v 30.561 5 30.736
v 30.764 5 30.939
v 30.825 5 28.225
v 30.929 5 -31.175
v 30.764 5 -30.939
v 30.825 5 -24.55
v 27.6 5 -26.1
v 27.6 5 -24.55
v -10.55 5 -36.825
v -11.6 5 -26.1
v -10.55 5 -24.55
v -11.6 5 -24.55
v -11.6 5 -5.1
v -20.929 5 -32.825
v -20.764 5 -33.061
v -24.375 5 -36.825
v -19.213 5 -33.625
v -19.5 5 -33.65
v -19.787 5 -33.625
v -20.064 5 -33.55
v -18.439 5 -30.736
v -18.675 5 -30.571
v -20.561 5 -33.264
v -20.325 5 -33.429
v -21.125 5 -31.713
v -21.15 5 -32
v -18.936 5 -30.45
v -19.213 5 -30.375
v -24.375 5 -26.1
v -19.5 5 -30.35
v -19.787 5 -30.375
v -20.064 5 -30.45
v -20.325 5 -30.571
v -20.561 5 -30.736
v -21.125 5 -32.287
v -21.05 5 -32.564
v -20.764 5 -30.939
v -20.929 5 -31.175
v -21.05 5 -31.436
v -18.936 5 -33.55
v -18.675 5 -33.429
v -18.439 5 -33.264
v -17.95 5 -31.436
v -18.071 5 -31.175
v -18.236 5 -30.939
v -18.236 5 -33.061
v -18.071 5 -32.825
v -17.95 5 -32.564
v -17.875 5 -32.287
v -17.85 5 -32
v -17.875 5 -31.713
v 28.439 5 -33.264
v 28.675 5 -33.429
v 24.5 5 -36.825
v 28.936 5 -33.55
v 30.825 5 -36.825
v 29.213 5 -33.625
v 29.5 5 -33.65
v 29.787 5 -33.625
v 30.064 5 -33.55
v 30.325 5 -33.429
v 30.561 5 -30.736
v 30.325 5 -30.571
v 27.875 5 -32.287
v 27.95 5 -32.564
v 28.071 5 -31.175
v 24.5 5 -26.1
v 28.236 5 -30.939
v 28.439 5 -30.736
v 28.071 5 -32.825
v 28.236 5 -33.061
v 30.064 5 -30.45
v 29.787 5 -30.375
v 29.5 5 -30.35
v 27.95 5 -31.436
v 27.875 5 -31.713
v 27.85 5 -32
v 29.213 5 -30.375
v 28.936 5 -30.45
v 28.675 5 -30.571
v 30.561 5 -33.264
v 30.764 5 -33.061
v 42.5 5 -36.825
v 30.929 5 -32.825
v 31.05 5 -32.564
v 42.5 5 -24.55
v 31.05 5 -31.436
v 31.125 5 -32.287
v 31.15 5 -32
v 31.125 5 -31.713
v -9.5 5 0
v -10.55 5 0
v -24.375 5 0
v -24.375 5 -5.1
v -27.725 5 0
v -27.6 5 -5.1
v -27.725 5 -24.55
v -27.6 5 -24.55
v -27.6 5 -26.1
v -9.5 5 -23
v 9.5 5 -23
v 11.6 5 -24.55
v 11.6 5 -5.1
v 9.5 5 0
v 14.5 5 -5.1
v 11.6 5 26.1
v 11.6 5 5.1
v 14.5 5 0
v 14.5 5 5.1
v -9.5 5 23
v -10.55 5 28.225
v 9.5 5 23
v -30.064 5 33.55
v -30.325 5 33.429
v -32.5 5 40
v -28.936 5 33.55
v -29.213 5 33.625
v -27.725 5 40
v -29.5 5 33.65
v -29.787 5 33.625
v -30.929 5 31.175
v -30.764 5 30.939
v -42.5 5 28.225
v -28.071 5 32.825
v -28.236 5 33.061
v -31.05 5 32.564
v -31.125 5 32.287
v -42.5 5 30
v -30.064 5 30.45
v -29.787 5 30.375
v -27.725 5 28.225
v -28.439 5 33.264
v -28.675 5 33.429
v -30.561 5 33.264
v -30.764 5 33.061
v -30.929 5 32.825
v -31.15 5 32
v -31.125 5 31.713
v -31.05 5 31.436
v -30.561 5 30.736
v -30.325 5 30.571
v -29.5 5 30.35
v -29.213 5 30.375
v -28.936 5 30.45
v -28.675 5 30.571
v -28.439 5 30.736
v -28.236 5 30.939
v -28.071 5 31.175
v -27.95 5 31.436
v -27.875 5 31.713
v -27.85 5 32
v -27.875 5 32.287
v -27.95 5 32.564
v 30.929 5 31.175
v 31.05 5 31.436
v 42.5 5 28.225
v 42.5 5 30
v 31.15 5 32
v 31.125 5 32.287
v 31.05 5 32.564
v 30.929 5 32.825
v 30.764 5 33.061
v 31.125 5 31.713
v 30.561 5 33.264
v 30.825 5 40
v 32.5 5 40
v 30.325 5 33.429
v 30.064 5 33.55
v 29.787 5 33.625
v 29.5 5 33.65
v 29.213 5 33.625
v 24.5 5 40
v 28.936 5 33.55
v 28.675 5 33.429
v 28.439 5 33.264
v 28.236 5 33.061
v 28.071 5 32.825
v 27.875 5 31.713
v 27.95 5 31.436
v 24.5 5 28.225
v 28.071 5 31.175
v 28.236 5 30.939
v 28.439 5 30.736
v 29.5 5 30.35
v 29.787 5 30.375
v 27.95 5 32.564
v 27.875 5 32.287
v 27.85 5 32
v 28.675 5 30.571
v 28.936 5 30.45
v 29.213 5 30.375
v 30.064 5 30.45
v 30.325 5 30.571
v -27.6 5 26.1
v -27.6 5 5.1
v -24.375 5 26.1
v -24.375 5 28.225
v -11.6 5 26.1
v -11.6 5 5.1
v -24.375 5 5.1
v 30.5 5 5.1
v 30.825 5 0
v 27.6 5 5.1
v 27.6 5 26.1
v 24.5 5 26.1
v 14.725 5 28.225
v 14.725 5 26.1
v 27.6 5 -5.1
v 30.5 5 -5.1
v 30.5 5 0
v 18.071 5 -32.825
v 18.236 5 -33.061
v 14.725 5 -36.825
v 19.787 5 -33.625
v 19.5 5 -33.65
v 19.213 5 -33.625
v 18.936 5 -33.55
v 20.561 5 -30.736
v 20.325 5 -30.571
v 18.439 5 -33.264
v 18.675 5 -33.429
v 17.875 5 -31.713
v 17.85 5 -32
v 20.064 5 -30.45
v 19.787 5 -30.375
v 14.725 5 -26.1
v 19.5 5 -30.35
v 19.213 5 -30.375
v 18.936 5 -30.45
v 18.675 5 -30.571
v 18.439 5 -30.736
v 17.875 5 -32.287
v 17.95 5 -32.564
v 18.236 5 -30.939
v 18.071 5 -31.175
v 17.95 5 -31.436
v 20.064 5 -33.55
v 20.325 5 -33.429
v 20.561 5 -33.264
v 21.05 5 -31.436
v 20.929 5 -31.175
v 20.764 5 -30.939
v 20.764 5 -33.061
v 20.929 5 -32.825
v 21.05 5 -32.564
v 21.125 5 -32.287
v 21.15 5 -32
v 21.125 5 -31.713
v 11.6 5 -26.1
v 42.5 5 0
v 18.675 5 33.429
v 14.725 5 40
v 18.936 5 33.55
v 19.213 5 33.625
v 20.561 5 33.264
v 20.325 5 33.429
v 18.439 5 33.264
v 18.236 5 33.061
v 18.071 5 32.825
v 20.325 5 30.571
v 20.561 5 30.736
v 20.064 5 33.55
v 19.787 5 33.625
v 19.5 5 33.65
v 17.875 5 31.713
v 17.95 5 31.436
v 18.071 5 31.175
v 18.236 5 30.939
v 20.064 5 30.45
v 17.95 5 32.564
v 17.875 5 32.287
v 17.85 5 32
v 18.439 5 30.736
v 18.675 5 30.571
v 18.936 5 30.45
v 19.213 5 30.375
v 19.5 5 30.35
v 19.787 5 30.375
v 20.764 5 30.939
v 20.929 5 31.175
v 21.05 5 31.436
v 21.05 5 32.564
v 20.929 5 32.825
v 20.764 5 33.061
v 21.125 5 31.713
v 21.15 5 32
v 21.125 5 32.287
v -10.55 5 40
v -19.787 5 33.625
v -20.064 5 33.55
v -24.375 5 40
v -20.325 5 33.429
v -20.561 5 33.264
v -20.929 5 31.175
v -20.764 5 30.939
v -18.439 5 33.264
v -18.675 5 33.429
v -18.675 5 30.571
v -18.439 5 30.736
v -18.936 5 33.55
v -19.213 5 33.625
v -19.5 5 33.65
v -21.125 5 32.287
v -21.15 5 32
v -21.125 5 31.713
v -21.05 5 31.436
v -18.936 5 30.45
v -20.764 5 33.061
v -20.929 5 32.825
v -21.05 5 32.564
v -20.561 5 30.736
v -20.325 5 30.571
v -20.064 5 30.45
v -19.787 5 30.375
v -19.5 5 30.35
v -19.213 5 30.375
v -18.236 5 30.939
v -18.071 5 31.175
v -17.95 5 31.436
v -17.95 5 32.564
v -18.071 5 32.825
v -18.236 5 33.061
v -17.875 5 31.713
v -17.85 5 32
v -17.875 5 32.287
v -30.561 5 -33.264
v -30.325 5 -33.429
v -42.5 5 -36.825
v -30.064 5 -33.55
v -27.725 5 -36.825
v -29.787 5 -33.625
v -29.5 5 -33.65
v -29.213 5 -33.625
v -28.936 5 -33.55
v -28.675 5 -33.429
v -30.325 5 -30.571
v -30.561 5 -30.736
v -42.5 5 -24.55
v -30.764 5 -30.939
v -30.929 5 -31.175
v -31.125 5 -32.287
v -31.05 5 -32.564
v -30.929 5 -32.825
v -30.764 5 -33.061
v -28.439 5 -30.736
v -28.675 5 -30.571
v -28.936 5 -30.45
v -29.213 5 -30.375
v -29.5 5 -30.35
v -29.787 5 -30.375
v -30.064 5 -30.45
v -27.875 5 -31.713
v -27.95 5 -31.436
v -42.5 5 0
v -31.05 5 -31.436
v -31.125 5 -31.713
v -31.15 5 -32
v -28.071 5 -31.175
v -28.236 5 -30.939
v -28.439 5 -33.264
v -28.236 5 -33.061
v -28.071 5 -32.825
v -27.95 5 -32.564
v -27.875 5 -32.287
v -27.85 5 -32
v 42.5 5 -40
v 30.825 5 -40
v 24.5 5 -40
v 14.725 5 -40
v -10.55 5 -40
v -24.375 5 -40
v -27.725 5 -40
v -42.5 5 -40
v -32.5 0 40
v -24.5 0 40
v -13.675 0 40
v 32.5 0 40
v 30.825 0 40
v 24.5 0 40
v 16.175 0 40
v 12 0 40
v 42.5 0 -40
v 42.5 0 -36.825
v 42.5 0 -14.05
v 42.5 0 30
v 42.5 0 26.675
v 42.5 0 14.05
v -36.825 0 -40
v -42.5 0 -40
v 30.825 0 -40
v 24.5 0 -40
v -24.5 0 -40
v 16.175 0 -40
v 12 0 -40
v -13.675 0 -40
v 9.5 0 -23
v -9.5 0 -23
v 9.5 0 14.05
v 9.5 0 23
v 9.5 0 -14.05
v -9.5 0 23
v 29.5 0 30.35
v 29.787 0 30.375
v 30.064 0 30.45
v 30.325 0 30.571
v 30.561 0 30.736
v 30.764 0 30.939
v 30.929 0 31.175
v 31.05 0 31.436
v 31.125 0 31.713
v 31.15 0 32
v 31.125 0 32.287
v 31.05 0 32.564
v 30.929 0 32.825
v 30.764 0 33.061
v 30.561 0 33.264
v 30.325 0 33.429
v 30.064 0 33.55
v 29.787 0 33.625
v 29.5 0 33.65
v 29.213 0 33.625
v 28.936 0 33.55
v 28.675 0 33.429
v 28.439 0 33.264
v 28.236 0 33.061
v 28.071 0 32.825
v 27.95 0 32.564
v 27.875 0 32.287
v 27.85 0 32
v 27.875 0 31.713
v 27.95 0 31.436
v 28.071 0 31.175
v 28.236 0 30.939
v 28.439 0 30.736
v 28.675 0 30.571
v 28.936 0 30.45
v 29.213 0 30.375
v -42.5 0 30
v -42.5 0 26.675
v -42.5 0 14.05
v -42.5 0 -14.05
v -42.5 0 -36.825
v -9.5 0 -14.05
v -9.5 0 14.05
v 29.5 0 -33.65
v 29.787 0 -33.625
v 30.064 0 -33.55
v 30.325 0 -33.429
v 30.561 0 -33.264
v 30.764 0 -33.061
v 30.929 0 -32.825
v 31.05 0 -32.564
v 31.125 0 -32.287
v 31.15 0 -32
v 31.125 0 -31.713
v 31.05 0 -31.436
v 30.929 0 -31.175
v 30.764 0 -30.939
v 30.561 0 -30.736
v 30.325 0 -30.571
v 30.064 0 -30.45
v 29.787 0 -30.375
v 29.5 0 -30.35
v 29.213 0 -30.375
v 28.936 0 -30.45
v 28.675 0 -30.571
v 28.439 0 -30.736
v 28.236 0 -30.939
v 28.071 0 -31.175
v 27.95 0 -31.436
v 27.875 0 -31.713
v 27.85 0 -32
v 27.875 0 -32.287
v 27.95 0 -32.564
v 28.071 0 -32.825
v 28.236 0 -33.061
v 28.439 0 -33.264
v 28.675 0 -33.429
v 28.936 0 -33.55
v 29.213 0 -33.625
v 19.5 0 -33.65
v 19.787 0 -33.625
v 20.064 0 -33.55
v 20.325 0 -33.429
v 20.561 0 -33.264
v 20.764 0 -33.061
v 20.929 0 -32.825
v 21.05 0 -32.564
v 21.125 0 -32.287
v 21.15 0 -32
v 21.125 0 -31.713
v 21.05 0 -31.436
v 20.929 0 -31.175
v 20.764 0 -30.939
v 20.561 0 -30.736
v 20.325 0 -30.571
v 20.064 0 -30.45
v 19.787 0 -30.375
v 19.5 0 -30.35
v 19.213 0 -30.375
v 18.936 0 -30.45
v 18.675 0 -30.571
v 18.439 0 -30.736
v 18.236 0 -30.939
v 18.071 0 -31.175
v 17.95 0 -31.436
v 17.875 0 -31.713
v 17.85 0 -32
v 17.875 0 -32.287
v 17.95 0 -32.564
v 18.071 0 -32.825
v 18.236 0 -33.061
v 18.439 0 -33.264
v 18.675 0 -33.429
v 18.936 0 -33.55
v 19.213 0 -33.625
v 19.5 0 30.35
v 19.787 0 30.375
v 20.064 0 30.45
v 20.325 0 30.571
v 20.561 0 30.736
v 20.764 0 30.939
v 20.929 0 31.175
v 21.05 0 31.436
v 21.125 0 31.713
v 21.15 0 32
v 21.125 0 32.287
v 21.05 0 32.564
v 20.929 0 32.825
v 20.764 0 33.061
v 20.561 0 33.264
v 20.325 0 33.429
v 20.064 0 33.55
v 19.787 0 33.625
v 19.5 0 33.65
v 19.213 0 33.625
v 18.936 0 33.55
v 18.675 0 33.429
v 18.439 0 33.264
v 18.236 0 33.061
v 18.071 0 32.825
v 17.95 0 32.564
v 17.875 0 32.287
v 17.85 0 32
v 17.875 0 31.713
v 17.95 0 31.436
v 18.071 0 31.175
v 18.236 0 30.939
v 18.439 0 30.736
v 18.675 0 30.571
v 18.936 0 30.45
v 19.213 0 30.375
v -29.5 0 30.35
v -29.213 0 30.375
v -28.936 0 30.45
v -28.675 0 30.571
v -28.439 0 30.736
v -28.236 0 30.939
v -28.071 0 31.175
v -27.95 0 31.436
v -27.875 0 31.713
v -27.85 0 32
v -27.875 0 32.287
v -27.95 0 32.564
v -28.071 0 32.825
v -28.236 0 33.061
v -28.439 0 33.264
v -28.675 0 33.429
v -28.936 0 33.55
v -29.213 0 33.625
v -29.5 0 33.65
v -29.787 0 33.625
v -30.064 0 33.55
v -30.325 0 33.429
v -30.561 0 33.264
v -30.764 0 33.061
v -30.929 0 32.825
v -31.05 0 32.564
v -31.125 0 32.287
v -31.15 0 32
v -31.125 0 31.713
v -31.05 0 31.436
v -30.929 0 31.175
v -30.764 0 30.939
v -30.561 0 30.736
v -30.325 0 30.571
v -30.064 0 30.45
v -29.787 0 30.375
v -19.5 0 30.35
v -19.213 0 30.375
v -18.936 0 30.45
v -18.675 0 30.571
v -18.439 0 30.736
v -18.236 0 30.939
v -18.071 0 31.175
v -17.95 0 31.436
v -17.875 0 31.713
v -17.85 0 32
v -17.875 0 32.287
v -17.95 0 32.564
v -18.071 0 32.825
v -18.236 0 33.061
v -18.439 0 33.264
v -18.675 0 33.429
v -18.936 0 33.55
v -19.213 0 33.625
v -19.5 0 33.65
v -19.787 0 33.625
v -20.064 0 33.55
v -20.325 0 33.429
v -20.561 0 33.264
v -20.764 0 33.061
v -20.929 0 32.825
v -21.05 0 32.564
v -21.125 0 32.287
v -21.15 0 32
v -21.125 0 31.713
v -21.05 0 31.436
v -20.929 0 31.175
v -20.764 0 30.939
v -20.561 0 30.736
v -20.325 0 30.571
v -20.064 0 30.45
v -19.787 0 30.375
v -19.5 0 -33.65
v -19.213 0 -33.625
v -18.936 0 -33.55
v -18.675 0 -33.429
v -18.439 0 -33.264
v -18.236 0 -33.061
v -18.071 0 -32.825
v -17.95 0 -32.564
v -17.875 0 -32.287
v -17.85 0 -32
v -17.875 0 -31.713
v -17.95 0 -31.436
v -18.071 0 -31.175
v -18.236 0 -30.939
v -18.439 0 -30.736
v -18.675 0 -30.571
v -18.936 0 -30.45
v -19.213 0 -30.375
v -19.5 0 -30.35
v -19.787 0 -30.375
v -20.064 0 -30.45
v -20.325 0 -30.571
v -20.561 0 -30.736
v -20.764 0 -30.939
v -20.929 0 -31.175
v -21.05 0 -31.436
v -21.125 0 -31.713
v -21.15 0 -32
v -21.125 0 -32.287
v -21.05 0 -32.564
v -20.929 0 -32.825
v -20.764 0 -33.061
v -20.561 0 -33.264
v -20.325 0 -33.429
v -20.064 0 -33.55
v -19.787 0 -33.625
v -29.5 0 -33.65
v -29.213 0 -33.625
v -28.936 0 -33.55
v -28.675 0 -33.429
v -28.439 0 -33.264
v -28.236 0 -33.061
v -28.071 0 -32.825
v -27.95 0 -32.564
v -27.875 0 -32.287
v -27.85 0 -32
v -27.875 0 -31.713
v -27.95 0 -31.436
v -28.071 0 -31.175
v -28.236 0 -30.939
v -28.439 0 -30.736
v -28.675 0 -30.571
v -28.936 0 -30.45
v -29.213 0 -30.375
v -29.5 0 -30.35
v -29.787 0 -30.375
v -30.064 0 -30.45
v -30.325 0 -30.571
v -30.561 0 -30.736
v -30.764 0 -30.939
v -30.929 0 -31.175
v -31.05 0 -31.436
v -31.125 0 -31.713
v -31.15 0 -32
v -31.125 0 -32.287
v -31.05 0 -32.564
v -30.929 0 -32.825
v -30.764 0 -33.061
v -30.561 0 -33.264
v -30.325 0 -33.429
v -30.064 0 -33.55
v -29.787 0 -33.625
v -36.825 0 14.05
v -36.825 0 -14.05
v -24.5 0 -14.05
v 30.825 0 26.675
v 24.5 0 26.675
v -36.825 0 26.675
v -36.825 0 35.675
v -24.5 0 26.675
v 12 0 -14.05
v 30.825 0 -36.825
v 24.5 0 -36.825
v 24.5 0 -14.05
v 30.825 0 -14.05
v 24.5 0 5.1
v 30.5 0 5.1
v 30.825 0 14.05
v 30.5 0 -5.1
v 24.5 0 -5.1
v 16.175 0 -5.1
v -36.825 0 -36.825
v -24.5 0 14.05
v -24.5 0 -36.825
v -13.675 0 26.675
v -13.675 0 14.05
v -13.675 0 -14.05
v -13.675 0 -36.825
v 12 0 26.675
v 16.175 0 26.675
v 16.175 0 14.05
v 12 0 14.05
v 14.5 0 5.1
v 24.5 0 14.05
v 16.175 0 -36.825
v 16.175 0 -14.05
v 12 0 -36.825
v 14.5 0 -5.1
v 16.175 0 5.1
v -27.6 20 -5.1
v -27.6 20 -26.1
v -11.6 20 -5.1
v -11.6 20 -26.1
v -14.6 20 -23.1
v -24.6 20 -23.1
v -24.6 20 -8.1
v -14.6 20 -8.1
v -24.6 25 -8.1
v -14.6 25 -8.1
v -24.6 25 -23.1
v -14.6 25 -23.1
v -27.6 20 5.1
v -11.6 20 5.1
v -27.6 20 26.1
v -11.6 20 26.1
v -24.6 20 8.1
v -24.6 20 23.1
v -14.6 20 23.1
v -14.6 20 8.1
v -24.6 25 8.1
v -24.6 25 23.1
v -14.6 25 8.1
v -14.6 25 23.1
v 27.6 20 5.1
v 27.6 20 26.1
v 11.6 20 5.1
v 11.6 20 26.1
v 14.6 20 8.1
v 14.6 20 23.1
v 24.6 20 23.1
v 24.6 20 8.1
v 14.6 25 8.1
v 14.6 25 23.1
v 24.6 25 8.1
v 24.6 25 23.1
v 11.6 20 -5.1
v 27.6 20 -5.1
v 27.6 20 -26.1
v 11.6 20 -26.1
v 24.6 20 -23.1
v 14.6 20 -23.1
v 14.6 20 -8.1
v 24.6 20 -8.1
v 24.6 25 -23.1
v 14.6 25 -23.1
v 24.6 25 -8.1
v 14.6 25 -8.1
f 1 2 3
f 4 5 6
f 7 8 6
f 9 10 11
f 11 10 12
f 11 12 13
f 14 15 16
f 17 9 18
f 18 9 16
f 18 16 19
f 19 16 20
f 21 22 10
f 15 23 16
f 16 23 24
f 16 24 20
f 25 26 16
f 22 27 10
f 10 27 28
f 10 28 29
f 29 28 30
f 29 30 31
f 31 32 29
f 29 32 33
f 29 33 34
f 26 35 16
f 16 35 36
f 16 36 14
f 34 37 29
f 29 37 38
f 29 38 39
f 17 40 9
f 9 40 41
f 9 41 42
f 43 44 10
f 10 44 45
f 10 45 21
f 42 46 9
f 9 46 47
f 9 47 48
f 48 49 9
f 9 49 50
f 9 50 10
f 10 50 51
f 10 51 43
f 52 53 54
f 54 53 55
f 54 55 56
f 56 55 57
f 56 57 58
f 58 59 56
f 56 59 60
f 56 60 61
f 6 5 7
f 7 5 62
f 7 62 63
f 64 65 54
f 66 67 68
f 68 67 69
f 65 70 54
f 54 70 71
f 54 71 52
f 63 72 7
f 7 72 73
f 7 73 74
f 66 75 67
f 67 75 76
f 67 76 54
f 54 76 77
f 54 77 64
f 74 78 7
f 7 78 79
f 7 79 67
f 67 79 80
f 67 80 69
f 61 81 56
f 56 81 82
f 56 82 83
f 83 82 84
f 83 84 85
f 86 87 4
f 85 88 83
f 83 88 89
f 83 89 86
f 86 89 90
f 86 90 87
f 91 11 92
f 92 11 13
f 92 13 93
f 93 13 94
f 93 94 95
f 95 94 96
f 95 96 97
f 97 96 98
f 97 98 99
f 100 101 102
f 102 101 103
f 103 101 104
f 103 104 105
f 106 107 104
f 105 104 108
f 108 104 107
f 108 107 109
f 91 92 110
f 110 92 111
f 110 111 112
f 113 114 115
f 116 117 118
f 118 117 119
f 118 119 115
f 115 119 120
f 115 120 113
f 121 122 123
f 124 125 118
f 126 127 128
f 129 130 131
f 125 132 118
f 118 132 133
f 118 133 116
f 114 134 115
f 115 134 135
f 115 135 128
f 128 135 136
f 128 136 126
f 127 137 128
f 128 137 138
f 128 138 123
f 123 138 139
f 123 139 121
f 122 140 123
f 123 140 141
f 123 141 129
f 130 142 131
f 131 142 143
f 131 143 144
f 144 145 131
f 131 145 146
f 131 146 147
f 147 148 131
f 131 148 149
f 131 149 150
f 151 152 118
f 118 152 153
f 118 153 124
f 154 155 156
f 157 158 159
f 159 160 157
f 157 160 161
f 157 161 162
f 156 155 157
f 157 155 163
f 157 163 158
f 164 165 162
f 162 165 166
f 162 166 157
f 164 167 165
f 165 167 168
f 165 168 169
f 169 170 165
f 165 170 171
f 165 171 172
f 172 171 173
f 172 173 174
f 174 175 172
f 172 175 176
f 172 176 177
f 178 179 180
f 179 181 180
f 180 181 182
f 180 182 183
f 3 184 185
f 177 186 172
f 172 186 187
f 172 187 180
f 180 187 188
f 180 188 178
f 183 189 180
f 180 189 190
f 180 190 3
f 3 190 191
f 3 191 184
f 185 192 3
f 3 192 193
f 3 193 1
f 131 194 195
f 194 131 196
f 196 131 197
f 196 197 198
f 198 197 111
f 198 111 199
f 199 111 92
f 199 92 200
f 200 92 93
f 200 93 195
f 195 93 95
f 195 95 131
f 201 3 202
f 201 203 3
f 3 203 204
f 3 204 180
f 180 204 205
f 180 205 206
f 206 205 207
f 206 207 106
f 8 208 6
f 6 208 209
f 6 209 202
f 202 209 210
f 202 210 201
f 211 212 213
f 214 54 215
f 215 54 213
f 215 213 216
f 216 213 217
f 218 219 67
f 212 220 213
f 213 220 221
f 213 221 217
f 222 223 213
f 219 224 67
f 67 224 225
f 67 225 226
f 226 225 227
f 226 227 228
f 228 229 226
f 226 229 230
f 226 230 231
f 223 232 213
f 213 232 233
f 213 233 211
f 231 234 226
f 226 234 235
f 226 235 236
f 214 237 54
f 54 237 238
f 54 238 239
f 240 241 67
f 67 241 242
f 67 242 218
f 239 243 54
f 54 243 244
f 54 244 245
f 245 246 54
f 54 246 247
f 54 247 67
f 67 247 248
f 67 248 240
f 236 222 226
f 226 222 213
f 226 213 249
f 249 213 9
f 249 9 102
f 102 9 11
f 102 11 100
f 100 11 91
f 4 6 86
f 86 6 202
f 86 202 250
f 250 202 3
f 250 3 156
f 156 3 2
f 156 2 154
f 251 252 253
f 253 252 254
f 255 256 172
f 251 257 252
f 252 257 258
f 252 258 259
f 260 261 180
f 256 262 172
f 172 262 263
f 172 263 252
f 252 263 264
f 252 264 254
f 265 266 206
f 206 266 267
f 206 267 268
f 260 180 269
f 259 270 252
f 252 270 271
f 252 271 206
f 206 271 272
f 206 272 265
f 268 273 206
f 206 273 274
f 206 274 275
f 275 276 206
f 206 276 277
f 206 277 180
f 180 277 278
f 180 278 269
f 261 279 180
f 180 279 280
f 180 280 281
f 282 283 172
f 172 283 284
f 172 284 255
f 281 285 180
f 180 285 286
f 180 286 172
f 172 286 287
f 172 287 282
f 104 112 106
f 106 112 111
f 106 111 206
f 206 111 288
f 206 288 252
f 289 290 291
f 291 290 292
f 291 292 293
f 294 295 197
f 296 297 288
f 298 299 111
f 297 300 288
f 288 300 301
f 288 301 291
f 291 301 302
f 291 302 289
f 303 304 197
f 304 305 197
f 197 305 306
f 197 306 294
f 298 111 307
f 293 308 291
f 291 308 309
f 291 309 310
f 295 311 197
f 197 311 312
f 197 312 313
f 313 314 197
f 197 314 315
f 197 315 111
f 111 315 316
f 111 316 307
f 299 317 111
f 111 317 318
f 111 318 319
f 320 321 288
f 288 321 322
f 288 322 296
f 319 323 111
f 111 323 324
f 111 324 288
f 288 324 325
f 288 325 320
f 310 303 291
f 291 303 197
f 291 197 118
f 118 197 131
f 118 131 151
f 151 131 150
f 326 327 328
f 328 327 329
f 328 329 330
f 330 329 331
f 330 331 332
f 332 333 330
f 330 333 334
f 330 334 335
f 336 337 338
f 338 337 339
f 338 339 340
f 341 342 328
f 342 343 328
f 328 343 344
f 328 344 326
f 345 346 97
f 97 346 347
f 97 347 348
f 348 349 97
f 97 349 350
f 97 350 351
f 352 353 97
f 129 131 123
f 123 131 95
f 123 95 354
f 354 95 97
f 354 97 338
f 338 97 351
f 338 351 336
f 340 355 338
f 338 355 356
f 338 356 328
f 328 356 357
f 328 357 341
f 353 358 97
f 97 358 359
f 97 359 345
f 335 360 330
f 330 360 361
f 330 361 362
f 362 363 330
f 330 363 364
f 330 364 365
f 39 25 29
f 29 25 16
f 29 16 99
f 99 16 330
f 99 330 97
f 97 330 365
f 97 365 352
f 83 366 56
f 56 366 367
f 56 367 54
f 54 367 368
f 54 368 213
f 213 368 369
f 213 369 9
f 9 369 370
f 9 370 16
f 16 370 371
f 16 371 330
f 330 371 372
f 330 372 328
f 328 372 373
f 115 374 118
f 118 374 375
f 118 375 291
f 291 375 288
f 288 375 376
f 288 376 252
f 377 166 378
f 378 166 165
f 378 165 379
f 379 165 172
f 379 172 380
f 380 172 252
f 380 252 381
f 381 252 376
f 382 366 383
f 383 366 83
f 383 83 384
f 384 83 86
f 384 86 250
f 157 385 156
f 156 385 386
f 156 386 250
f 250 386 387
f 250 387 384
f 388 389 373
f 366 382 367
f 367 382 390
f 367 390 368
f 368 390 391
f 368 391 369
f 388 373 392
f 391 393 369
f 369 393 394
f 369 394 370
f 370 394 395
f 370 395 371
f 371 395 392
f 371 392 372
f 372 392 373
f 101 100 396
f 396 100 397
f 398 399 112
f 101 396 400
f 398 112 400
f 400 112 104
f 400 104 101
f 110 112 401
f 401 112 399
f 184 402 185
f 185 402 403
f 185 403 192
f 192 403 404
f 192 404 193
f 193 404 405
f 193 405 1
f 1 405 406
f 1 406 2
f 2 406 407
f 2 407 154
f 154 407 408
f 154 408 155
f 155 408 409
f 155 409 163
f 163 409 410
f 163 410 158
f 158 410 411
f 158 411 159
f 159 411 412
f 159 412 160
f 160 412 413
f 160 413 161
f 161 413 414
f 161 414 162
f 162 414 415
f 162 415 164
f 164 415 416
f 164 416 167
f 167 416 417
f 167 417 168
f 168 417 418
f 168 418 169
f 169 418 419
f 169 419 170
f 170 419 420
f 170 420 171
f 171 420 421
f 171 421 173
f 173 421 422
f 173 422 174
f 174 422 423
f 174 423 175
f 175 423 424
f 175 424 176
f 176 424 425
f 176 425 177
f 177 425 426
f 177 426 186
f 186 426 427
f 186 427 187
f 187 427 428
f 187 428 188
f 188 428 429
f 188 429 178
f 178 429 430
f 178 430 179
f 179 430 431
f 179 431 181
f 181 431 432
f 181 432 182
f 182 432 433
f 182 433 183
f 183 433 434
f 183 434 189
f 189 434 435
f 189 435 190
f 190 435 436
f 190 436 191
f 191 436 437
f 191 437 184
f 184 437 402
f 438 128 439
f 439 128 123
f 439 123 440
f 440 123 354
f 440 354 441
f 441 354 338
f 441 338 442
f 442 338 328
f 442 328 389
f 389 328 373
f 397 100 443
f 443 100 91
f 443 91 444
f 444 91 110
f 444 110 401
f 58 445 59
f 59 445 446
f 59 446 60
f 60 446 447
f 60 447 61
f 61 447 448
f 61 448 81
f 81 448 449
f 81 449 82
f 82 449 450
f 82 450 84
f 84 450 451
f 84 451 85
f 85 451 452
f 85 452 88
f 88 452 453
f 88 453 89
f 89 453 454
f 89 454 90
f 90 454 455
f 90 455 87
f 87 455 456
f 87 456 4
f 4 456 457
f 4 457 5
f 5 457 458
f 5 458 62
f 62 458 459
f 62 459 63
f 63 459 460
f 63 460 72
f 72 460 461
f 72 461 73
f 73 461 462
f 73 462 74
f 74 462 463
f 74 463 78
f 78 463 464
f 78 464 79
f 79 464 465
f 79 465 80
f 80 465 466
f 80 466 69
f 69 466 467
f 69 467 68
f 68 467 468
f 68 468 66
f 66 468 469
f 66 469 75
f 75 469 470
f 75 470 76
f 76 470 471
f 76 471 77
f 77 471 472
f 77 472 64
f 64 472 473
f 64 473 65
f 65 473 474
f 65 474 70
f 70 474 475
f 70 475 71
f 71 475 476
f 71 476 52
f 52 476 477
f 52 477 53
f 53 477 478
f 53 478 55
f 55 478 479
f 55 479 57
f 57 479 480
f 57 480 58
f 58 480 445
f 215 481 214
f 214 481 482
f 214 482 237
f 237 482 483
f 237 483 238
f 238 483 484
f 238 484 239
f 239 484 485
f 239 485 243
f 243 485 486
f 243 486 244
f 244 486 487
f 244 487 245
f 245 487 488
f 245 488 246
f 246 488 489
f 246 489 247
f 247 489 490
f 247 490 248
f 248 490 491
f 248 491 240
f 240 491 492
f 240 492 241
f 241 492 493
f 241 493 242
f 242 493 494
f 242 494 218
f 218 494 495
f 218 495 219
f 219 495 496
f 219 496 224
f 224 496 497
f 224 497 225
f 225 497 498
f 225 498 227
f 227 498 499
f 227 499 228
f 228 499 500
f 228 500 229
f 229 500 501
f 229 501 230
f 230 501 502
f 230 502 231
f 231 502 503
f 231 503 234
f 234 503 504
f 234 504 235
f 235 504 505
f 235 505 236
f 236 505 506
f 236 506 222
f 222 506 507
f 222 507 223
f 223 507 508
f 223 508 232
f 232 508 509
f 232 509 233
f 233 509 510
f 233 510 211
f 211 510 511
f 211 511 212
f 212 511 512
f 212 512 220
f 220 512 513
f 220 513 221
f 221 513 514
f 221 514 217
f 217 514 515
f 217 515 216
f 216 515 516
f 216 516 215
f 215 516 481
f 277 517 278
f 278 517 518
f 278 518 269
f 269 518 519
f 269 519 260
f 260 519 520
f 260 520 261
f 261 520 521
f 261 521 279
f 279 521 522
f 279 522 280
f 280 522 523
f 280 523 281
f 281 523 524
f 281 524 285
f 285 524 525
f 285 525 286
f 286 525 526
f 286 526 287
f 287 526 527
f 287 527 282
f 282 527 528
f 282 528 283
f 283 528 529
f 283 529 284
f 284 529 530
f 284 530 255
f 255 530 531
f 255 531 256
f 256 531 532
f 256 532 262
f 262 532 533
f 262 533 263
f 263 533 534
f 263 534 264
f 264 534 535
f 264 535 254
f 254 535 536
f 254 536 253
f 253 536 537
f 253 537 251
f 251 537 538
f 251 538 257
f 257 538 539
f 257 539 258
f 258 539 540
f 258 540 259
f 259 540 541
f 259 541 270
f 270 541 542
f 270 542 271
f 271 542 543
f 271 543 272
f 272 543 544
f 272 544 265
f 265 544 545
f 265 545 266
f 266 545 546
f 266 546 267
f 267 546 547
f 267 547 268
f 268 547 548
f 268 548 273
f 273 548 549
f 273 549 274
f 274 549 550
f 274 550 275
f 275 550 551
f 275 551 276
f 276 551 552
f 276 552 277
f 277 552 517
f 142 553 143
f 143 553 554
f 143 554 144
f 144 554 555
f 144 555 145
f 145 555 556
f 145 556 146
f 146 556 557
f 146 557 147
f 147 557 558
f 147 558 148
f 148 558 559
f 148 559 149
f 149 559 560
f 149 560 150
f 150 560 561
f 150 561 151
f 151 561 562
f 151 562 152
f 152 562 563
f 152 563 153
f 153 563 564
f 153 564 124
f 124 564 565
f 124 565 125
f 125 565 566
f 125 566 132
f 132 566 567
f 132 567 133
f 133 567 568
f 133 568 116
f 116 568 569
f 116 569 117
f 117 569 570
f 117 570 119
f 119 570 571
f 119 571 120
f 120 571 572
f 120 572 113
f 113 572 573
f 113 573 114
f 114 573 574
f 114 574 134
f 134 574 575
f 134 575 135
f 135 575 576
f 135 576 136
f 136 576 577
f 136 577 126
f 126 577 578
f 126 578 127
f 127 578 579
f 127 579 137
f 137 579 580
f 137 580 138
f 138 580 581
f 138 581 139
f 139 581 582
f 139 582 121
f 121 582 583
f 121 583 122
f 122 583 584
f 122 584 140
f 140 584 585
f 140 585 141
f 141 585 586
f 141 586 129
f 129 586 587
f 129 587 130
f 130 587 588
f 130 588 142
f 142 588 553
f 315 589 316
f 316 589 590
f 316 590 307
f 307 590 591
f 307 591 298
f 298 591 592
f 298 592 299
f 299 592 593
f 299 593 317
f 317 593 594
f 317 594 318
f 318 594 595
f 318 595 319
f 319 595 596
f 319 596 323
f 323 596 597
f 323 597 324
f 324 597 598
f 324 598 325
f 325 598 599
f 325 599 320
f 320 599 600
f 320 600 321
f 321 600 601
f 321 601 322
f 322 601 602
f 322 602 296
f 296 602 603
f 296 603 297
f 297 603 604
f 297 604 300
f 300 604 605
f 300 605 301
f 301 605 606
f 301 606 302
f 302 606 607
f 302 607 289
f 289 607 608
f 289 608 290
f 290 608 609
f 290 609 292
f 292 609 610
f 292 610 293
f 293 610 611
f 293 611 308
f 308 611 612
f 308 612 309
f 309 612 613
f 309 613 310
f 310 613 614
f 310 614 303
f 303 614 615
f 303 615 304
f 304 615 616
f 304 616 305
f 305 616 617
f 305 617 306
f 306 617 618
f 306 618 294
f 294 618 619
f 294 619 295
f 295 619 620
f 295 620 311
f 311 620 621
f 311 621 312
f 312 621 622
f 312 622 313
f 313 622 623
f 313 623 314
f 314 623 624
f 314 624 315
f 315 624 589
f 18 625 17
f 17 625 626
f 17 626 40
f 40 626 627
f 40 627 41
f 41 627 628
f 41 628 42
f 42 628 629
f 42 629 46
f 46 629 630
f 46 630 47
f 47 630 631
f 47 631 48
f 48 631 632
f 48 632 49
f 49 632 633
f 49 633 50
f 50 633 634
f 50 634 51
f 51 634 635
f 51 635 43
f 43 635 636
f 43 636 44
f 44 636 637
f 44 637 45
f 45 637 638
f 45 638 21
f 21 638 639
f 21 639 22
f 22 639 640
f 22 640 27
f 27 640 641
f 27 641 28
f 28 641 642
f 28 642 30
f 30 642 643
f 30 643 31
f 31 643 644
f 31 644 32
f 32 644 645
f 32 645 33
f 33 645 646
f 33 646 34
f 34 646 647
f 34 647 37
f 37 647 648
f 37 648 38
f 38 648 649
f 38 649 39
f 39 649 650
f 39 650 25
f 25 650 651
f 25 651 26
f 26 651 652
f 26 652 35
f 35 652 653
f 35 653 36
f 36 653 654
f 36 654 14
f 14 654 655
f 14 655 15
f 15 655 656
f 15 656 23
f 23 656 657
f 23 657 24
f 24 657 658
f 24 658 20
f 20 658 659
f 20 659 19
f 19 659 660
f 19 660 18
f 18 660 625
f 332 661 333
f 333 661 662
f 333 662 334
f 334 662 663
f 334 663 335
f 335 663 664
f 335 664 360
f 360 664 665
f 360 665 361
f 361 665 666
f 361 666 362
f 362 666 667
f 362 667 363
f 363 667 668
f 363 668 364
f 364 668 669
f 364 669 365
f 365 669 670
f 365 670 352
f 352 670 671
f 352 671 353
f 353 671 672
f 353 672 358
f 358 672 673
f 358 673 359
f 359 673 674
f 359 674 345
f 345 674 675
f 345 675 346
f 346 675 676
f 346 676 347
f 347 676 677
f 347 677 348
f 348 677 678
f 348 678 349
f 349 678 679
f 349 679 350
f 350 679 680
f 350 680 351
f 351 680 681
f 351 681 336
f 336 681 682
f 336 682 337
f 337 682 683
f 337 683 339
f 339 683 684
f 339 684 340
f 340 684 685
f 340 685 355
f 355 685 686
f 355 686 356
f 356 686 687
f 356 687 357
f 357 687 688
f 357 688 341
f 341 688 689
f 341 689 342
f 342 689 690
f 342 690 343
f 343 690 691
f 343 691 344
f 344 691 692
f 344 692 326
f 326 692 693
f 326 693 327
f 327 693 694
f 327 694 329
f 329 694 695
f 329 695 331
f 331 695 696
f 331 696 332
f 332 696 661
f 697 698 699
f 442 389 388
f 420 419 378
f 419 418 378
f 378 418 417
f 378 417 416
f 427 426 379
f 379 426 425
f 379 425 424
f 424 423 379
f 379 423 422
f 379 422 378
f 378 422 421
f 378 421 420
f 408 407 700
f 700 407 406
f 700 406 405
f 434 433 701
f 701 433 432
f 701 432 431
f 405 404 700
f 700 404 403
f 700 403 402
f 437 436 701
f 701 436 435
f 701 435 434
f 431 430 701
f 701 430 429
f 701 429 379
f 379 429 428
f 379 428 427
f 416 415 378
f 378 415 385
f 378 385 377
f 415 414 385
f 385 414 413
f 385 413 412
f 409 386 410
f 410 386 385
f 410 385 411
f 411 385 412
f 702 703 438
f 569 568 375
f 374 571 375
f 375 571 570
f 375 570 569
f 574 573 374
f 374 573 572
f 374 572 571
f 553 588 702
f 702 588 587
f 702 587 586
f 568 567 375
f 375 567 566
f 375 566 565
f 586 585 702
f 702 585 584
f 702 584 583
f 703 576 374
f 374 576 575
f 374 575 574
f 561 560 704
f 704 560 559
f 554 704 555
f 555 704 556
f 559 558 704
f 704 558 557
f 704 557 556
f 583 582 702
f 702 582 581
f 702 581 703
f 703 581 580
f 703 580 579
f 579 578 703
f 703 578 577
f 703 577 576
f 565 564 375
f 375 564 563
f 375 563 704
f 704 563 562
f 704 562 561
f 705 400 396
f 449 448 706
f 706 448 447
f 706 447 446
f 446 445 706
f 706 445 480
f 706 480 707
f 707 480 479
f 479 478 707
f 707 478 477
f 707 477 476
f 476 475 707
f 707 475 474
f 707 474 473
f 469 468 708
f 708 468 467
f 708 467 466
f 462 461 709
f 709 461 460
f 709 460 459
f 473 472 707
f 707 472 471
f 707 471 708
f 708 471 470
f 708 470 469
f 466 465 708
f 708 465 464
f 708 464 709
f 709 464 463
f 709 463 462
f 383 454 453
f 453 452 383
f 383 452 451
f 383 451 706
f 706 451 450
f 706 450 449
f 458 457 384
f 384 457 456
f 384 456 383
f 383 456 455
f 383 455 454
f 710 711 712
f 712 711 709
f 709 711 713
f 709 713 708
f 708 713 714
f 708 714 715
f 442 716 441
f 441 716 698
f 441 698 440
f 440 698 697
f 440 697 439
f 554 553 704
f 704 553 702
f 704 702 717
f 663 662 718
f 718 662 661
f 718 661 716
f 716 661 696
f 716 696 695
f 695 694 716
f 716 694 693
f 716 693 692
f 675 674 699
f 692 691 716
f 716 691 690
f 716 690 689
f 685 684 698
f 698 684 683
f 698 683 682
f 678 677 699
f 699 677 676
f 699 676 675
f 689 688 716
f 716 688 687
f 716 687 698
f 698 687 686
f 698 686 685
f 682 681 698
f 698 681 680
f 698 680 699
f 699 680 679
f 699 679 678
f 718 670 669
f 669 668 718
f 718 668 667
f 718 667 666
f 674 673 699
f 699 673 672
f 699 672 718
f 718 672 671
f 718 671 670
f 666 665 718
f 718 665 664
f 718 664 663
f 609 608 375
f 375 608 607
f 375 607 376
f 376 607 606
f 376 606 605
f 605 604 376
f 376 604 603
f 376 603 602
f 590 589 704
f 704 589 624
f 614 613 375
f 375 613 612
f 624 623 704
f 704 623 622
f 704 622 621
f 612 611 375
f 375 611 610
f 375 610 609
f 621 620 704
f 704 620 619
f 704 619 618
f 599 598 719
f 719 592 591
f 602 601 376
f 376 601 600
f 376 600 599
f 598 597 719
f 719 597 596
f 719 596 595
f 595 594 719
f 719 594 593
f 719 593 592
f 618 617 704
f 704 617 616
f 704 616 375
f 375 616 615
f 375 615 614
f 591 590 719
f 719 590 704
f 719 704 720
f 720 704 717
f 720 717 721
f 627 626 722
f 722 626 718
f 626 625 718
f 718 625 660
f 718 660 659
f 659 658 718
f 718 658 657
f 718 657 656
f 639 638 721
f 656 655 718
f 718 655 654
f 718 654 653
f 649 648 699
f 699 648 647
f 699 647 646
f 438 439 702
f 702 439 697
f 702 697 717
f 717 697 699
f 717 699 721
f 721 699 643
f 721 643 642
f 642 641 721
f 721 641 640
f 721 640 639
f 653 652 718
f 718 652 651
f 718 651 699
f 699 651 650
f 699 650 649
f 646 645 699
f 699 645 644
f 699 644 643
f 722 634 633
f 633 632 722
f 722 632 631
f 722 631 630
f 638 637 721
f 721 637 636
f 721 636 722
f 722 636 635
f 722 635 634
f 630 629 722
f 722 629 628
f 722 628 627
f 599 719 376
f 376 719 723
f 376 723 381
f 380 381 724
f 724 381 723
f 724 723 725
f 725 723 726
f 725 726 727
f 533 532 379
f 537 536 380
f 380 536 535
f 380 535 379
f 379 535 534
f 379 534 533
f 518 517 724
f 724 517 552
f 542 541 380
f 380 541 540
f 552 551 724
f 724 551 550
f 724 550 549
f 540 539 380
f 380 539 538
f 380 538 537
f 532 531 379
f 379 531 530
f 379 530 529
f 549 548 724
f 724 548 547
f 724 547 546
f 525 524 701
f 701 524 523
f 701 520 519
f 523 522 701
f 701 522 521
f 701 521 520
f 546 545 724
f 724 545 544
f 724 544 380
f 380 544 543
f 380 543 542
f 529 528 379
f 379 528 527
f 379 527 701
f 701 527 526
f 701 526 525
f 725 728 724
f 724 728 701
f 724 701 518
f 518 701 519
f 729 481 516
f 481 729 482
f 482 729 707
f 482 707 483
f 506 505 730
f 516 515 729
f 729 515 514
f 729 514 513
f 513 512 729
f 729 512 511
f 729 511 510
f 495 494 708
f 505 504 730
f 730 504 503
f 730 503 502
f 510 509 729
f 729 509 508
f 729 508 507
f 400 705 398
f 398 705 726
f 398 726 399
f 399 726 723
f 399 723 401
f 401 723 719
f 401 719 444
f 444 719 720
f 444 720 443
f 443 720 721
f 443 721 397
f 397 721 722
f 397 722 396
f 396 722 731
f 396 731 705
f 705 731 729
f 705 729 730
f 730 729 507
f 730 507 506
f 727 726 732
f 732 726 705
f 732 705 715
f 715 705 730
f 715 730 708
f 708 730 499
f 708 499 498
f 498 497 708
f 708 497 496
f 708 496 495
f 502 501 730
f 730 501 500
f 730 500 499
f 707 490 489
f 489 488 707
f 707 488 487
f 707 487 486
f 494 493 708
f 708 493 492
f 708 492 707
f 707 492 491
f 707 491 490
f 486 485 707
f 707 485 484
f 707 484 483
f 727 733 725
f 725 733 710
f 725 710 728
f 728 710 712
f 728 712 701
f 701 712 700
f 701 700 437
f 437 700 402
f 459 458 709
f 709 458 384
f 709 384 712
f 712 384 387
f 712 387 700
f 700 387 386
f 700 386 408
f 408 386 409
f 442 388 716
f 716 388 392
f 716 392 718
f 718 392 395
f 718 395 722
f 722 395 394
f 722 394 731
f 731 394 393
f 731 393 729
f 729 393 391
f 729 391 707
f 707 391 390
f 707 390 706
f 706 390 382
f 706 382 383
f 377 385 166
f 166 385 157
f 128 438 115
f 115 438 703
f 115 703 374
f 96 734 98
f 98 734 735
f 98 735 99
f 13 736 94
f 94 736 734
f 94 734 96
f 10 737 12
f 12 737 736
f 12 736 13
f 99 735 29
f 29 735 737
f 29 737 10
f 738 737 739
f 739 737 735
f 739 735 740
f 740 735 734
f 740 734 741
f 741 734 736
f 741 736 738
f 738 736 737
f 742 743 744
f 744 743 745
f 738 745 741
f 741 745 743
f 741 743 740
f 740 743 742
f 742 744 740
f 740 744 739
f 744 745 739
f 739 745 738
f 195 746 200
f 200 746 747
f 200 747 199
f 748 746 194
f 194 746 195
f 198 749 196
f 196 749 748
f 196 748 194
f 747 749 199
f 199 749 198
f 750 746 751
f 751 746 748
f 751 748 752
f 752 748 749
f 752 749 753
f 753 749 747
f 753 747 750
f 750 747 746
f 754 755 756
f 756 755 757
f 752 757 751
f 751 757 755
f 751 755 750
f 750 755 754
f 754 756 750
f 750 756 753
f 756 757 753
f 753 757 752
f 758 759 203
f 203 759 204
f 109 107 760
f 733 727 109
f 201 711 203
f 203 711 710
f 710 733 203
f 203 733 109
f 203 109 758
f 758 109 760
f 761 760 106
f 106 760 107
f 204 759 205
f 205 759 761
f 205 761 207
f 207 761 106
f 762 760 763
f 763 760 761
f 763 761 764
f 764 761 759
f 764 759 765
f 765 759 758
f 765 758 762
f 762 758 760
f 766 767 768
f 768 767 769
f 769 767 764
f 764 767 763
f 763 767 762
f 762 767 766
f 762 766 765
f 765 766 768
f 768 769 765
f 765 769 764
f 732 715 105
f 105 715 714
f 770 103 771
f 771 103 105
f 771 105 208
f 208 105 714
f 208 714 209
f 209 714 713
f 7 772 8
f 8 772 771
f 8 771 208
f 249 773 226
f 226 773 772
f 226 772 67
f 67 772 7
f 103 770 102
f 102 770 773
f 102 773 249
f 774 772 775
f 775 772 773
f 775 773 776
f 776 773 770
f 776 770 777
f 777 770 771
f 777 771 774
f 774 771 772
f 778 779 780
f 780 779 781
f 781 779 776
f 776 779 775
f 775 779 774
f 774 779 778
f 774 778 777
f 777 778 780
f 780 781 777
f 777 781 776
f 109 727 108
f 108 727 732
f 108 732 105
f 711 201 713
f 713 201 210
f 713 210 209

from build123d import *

# Parameters (mm, degrees)
SKETCH1_R           = 1.65
SKETCH1_W           = 19
SKETCH1_H           = 46
BOSS_EXTRUDE3_DEPTH = 5
CHAMFER1_SIZE       = 10
SKETCH6_W           = 10
SKETCH6_H           = 15
BOSS_EXTRUDE4_DEPTH = 20
SKETCH8_W           = 16
SKETCH8_H           = 21
SKETCH8_W_2         = 10
SKETCH8_H_2         = 15
BOSS_EXTRUDE5_DEPTH = 15
SKETCH5_W           = 16
SKETCH5_H           = 10.2
CUT_EXTRUDE1_DEPTH  = 64.492125496


with BuildPart() as part:
    # Sketch1 → Boss-Extrude3 (new body)
    with BuildSketch(Plane(origin=(0, 0, 0), x_dir=(1, 0, 0), z_dir=(0, 1, 0))):
        Polygon((42.5, 40), (-42.5, 40), (-42.5, 24.25), (-42.5, -24.25), (-42.5, -40), (-20, -40), (20, -40), (42.5, -40), (42.5, -24.25), (42.5, 24.25), align=None)
        with Locations(Location((-29.5, -32, 0), (0, 0, 270))):
            Circle(SKETCH1_R, mode=Mode.SUBTRACT)
        with Locations(Location((-19.5, -32, 0), (0, 0, 270))):
            Circle(SKETCH1_R, mode=Mode.SUBTRACT)
        with Locations(Location((19.5, -32, 0), (0, 0, 270))):
            Circle(SKETCH1_R, mode=Mode.SUBTRACT)
        with Locations(Location((29.5, -32, 0), (0, 0, 270))):
            Circle(SKETCH1_R, mode=Mode.SUBTRACT)
        Rectangle(SKETCH1_W, SKETCH1_H, mode=Mode.SUBTRACT)
        with Locations(Location((-29.5, 32, 0), (0, 0, 270))):
            Circle(SKETCH1_R, mode=Mode.SUBTRACT)
        with Locations(Location((-19.5, 32, 0), (0, 0, 270))):
            Circle(SKETCH1_R, mode=Mode.SUBTRACT)
        with Locations(Location((19.5, 32, 0), (0, 0, 270))):
            Circle(SKETCH1_R, mode=Mode.SUBTRACT)
        with Locations(Location((29.5, 32, 0), (0, 0, 270))):
            Circle(SKETCH1_R, mode=Mode.SUBTRACT)
    extrude(amount=BOSS_EXTRUDE3_DEPTH)

    # Chamfer1
    chamfer1_edges = [part.edges().sort_by_distance(p)[0] for p in [
        (-42.5, 2.5, 40),
        (42.5, 2.5, 40),
    ]]
    chamfer(chamfer1_edges, length=CHAMFER1_SIZE)

    # Sketch6 → Boss-Extrude4 (add)
    with BuildSketch(Plane(origin=(0, 5, 0), x_dir=(1, 0, 0), z_dir=(0, 1, 0))):
        with Locations((19.6, 15.6)):
            Rectangle(SKETCH6_W, SKETCH6_H)
        with Locations((-19.6, 15.6)):
            Rectangle(SKETCH6_W, SKETCH6_H)
        with Locations((-19.6, -15.6)):
            Rectangle(SKETCH6_W, SKETCH6_H)
        with Locations((19.6, -15.6)):
            Rectangle(SKETCH6_W, SKETCH6_H)
    extrude(amount=BOSS_EXTRUDE4_DEPTH)

    # Sketch8 → Boss-Extrude5 (add)
    # profile 1 of 4: a face of its own
    with BuildSketch(Plane(origin=(0, 5, 0), x_dir=(1, 0, 0), z_dir=(0, 1, 0))):
        with Locations((-19.6, 15.6)):
            Rectangle(SKETCH8_W, SKETCH8_H)
        with Locations((-19.6, 15.6)):
            Rectangle(SKETCH8_W_2, SKETCH8_H_2, mode=Mode.SUBTRACT)
    # profile 2 of 4: a face of its own
    with BuildSketch(Plane(origin=(0, 5, 0), x_dir=(1, 0, 0), z_dir=(0, 1, 0))):
        with Locations((-19.6, -15.6)):
            Rectangle(SKETCH8_W, SKETCH8_H)
        with Locations((-19.6, -15.6)):
            Rectangle(SKETCH8_W_2, SKETCH8_H_2, mode=Mode.SUBTRACT)
    # profile 3 of 4: a face of its own
    with BuildSketch(Plane(origin=(0, 5, 0), x_dir=(1, 0, 0), z_dir=(0, 1, 0))):
        with Locations((19.6, -15.6)):
            Rectangle(SKETCH8_W, SKETCH8_H)
        with Locations((19.6, -15.6)):
            Rectangle(SKETCH8_W_2, SKETCH8_H_2, mode=Mode.SUBTRACT)
    # profile 4 of 4: a face of its own
    with BuildSketch(Plane(origin=(0, 5, 0), x_dir=(1, 0, 0), z_dir=(0, 1, 0))):
        with Locations((19.6, 15.6)):
            Rectangle(SKETCH8_W, SKETCH8_H)
        with Locations((19.6, 15.6)):
            Rectangle(SKETCH8_W_2, SKETCH8_H_2, mode=Mode.SUBTRACT)
    extrude(amount=BOSS_EXTRUDE5_DEPTH)

    # Sketch5 → Cut-Extrude1 (cut, through all)
    with BuildSketch(Plane.XZ):
        with Locations((22.5, 0)):
            Rectangle(SKETCH5_W, SKETCH5_H)
    extrude(amount=-CUT_EXTRUDE1_DEPTH, mode=Mode.SUBTRACT)


solid = part.part
